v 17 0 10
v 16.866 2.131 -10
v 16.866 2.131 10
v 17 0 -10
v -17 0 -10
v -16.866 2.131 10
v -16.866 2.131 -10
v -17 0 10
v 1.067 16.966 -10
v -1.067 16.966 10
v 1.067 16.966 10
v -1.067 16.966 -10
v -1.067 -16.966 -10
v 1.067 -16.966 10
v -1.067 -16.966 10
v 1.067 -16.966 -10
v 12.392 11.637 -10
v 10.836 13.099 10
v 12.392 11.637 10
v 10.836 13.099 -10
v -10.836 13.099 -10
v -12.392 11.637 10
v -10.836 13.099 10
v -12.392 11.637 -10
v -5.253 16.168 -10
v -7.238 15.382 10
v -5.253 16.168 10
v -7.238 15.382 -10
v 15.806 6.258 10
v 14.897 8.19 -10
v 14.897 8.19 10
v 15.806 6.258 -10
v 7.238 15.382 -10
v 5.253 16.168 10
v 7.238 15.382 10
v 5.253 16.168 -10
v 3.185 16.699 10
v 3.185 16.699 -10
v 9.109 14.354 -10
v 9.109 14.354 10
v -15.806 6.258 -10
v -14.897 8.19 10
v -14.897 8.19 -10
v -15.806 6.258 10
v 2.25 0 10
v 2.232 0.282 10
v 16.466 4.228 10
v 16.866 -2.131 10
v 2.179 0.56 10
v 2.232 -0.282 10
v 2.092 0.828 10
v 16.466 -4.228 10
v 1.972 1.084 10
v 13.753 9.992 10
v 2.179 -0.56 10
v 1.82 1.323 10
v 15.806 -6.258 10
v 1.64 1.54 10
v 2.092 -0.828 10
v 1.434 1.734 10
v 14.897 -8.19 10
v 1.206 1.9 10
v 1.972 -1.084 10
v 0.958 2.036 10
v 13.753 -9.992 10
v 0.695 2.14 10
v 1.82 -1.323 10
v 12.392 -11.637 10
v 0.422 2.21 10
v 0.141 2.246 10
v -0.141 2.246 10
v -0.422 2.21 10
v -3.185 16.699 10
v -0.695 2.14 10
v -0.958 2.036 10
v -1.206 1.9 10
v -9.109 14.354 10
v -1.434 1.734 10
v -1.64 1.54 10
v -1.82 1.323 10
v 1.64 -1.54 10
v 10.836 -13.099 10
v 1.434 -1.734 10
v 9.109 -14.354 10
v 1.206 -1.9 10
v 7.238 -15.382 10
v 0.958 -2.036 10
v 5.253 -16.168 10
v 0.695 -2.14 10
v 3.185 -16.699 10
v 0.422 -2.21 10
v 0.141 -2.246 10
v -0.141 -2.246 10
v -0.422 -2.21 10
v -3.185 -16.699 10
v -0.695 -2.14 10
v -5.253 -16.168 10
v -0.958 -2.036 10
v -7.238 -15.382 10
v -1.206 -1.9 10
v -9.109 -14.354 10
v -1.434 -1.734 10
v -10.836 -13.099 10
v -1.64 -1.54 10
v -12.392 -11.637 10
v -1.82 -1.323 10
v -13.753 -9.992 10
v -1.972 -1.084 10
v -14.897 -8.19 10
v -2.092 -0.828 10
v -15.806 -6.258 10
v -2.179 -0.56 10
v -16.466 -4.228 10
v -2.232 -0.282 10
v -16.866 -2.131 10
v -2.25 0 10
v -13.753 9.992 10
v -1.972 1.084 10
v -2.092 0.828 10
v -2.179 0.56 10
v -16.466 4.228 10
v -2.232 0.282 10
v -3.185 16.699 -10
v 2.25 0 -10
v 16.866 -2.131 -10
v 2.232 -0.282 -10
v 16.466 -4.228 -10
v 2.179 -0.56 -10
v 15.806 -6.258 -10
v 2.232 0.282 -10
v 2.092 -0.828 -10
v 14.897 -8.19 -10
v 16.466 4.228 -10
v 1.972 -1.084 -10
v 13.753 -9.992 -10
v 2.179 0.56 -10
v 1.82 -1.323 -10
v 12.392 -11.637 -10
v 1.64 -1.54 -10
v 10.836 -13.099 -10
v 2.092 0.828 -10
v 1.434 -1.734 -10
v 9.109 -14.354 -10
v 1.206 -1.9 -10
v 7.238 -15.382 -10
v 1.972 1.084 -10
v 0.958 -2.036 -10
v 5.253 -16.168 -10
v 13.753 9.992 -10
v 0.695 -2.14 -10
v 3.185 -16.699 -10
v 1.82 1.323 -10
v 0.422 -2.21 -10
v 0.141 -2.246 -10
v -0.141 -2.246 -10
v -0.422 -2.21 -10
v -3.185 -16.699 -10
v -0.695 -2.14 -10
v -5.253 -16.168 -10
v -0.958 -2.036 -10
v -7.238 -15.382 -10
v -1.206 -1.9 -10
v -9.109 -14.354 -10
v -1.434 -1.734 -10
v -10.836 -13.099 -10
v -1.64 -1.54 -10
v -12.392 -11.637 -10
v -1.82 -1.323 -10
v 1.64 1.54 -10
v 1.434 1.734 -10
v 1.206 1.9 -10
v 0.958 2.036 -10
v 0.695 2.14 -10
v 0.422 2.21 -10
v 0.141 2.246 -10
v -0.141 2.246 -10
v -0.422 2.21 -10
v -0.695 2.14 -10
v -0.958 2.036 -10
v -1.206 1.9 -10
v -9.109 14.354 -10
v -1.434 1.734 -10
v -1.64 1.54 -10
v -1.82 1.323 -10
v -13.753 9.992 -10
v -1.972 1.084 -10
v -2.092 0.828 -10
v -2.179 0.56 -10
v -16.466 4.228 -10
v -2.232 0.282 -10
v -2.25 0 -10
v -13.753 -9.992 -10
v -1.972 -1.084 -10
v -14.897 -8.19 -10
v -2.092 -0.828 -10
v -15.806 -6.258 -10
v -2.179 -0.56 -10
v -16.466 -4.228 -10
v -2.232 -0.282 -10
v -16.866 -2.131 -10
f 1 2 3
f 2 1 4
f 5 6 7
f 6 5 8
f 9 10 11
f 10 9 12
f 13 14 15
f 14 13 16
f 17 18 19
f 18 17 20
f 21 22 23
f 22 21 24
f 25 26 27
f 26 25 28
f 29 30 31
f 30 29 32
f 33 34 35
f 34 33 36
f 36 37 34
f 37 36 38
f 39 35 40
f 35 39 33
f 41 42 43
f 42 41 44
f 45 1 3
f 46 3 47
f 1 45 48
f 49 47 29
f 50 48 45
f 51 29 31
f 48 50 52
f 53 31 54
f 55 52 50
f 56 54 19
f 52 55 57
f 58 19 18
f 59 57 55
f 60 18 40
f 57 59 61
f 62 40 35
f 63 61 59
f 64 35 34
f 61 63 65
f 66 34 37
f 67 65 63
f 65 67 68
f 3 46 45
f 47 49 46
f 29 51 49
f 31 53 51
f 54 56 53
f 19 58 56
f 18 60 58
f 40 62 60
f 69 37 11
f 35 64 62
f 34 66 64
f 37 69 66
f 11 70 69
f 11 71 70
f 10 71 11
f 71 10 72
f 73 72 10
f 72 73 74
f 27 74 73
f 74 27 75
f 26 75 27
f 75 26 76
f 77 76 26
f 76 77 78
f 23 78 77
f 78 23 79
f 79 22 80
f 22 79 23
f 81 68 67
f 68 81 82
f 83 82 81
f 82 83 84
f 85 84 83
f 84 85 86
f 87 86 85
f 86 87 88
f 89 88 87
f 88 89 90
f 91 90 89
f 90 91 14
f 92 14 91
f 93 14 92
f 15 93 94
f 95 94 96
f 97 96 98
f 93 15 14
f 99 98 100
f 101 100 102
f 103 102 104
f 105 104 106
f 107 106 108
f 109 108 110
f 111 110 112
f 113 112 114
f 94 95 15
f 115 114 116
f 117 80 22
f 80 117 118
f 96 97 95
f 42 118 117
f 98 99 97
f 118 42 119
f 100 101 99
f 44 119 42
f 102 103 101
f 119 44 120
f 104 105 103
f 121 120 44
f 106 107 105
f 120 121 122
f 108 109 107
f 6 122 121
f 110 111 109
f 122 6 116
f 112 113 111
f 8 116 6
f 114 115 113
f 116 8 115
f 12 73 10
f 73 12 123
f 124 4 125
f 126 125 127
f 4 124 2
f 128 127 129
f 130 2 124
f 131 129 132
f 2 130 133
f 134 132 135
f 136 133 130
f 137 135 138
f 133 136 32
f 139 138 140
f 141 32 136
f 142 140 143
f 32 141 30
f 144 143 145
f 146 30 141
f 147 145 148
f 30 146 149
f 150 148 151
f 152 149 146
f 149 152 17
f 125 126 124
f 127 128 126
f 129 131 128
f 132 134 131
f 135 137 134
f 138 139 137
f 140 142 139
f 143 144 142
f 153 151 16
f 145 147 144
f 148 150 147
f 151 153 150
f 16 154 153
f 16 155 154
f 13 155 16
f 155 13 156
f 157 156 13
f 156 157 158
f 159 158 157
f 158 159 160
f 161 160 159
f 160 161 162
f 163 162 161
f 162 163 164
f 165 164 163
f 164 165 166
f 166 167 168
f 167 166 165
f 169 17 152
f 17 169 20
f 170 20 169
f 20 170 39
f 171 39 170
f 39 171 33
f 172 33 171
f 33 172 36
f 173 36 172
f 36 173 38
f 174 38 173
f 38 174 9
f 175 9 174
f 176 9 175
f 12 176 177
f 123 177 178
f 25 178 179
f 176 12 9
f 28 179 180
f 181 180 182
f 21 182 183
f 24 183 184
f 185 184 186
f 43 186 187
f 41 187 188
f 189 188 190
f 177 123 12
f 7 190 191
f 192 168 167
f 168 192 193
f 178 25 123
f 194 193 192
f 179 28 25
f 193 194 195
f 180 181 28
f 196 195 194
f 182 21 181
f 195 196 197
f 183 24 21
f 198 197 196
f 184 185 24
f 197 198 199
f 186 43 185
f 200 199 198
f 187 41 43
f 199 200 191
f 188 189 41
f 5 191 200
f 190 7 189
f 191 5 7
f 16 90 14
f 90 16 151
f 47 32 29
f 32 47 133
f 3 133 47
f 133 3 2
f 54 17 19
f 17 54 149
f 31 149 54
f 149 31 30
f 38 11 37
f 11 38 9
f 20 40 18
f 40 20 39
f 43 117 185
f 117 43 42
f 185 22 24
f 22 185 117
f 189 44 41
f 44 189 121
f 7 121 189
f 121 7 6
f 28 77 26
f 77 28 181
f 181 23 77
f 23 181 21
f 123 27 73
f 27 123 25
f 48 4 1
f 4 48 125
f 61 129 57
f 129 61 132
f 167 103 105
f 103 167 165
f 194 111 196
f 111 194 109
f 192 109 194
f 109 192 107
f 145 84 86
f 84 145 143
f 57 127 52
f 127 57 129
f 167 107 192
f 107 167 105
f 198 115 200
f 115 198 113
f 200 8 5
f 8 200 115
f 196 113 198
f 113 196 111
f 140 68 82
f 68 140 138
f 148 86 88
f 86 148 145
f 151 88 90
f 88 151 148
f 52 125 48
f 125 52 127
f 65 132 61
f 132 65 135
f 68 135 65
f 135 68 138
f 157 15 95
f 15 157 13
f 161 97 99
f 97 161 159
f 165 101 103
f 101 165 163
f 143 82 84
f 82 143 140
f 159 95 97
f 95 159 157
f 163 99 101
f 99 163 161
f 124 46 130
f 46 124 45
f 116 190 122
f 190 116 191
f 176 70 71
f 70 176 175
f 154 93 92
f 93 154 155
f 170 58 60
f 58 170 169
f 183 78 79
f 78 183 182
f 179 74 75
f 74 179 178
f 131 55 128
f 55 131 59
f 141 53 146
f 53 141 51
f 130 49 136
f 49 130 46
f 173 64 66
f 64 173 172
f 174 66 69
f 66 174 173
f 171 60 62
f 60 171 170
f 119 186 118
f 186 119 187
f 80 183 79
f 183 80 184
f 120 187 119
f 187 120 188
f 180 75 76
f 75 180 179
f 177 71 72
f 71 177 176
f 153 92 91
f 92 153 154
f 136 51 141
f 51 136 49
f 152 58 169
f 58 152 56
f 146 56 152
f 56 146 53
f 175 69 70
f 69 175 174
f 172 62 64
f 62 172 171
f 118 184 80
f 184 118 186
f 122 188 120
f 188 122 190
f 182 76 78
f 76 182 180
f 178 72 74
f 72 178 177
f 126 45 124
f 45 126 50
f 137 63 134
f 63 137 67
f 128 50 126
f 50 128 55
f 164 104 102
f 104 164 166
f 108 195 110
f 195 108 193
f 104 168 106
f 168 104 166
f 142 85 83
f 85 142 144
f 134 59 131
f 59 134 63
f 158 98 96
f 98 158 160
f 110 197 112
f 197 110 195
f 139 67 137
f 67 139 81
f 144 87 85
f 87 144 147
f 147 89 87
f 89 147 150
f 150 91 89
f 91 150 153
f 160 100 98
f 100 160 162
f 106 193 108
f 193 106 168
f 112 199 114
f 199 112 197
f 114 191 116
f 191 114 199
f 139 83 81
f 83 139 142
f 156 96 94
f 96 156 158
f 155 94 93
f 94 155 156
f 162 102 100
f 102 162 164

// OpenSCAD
$fn = 50;


difference() {
	union() {
		translate(v = [0, 0, -10.0000000000]) {
			cylinder(h = 20, r = 17.0000000000);
		}
	}
	union() {
		translate(v = [0, 0, -100.0000000000]) {
			cylinder(h = 200, r = 2.2500000000);
		}
	}
}
